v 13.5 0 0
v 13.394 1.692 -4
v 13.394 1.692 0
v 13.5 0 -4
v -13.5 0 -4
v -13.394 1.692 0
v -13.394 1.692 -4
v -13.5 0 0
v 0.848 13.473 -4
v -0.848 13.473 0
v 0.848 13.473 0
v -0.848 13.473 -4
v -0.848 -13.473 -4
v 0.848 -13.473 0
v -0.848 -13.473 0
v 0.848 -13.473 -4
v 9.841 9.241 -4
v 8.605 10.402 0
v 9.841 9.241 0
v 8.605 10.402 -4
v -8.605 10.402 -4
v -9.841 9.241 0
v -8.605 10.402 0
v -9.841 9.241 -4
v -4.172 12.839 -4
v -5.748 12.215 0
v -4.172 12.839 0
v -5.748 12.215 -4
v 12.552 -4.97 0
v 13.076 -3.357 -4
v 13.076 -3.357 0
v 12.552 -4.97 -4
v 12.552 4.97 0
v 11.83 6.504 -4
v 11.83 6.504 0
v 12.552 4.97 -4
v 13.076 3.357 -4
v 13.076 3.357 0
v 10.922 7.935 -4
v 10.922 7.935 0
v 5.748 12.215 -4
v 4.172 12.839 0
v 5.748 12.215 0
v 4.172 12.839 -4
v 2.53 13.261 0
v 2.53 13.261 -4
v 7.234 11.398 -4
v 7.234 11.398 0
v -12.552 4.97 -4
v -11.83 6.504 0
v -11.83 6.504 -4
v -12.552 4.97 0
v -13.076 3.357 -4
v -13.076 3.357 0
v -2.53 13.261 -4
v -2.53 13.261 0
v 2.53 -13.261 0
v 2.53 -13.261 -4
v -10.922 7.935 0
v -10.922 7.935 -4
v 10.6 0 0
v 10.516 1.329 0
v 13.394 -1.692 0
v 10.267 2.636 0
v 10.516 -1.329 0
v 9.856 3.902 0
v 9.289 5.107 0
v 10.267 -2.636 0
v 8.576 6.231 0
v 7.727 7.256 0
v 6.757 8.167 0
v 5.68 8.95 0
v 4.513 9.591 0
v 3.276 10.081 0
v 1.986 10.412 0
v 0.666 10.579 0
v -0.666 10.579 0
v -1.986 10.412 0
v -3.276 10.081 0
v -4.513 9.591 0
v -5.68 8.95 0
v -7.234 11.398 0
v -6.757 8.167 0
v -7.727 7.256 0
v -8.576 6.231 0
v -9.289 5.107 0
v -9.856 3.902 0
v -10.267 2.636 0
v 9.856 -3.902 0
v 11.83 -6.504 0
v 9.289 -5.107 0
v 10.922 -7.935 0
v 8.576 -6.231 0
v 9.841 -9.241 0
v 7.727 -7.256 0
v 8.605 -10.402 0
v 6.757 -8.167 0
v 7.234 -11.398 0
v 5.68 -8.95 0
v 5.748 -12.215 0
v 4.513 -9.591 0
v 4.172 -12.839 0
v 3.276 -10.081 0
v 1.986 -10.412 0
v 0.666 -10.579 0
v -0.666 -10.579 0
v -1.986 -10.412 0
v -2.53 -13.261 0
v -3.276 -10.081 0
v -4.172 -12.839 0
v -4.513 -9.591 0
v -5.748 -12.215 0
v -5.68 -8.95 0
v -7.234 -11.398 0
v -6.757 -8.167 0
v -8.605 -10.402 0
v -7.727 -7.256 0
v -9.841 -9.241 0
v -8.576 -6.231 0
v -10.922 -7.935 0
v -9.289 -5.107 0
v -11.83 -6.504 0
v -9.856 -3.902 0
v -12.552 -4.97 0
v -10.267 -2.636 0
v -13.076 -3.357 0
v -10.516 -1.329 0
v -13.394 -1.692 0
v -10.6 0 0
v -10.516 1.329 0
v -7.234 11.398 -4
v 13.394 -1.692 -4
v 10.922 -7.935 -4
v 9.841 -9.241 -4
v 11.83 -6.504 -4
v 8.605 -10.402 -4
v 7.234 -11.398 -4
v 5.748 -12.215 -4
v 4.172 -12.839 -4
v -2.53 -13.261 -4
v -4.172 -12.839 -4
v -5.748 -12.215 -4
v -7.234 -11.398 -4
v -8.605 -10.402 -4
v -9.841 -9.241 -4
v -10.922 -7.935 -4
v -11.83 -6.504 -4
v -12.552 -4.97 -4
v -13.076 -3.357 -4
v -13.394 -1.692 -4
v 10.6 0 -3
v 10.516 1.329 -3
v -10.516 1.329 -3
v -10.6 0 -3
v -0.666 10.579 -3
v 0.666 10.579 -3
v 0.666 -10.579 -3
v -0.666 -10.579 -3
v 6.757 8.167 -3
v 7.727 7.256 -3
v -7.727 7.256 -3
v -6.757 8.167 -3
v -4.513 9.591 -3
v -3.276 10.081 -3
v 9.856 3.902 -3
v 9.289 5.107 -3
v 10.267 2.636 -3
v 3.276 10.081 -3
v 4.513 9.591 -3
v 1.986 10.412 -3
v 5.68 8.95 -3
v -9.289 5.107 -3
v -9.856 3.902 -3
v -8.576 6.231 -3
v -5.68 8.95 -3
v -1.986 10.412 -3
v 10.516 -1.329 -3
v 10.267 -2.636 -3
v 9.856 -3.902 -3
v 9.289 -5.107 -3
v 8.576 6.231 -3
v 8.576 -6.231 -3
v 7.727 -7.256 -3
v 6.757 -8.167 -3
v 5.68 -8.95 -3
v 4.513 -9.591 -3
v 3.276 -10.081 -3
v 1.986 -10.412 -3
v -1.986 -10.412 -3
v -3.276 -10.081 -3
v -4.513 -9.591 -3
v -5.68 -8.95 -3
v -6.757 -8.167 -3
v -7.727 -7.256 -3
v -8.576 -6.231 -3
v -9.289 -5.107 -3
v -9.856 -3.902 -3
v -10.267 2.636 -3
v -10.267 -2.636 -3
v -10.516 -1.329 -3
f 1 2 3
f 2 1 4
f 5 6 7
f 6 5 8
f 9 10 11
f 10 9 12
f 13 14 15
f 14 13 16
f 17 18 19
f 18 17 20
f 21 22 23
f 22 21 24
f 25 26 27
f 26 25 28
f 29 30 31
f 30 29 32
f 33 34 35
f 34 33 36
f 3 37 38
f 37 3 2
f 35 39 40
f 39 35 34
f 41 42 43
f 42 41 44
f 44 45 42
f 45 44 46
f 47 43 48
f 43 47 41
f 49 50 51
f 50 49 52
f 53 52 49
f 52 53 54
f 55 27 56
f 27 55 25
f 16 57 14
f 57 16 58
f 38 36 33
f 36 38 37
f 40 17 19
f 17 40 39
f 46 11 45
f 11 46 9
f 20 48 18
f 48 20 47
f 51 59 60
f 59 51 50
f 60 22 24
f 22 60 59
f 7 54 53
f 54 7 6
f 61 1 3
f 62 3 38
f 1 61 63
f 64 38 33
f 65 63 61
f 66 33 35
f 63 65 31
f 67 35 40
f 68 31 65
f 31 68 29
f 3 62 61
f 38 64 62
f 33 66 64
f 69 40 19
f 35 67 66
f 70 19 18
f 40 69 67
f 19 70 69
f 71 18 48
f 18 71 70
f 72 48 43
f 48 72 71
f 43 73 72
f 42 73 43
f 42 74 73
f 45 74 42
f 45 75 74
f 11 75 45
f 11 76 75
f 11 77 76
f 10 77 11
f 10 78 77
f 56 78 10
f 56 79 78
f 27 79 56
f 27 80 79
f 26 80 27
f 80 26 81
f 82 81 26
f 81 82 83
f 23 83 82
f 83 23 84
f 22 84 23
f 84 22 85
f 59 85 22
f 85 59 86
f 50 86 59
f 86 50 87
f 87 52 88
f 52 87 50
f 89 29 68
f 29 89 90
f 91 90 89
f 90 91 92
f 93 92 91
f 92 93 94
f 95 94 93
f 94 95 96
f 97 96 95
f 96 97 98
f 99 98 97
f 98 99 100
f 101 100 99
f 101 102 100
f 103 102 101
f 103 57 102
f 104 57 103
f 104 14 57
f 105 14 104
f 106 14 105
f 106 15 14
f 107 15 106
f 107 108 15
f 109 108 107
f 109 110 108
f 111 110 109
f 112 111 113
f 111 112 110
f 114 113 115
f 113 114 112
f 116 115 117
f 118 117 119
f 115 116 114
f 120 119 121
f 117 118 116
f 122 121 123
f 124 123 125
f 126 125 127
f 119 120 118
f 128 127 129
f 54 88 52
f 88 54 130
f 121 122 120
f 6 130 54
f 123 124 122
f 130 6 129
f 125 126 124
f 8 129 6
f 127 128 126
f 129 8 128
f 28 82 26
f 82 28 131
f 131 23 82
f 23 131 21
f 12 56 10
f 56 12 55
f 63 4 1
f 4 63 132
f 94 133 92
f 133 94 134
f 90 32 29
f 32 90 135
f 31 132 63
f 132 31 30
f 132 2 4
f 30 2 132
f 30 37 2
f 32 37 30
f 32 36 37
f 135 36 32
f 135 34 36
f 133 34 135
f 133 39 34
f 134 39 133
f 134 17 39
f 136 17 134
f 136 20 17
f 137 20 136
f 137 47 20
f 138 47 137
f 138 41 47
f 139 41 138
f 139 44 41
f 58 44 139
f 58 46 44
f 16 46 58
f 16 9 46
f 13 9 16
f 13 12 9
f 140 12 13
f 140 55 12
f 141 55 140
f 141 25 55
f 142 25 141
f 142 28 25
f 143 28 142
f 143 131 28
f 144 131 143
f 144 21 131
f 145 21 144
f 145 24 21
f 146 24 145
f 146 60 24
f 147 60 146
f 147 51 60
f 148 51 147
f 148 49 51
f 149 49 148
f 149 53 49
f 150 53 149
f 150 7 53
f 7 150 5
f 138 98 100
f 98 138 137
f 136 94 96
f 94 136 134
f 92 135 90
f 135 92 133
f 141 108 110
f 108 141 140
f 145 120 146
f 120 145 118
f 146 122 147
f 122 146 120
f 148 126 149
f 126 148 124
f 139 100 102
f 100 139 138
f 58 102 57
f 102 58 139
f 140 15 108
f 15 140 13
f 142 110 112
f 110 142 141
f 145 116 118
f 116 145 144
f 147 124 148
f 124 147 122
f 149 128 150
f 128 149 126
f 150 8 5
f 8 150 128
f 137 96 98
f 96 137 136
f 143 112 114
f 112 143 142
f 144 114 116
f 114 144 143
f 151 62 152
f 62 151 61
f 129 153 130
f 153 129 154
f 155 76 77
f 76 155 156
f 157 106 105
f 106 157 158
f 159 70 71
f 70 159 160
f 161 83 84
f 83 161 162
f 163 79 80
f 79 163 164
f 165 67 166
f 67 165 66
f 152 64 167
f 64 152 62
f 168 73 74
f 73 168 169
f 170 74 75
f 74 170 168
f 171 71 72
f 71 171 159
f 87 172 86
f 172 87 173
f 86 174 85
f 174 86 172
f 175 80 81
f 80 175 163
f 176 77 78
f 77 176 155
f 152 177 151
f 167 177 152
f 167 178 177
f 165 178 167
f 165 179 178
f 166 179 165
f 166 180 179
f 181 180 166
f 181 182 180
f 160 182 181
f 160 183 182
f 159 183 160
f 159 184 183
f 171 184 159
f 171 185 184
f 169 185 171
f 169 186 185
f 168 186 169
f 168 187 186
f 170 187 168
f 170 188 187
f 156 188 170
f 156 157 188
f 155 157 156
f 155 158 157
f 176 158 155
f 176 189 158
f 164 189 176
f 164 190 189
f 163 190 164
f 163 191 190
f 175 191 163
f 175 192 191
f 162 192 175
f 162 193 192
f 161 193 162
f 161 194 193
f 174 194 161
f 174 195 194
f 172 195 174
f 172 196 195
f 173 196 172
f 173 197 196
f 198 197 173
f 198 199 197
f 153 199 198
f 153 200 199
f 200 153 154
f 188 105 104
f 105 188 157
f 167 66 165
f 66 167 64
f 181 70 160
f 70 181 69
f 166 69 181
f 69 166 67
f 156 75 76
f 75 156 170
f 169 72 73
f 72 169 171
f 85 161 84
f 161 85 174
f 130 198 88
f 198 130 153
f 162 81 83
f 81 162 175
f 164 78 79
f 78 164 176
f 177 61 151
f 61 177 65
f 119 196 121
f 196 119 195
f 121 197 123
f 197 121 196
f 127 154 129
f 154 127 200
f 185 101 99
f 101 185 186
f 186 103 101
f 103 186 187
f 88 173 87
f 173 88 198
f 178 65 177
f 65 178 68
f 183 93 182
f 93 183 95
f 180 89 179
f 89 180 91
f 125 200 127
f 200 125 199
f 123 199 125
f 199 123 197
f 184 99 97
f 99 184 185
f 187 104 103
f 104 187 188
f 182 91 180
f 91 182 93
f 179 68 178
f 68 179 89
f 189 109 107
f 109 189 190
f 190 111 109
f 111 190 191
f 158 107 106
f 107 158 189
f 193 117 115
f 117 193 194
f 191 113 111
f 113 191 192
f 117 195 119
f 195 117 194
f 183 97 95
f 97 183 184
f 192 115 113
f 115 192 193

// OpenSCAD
$fn = 50;


difference() {
	union() {
		translate(v = [0, 0, -4.0000000000]) {
			cylinder(h = 4, r = 13.5000000000);
		}
	}
	union() {
		#translate(v = [0, 0, -3.0000000000]) {
			cylinder(h = 3, r = 10.6000000000);
		}
	}
}
